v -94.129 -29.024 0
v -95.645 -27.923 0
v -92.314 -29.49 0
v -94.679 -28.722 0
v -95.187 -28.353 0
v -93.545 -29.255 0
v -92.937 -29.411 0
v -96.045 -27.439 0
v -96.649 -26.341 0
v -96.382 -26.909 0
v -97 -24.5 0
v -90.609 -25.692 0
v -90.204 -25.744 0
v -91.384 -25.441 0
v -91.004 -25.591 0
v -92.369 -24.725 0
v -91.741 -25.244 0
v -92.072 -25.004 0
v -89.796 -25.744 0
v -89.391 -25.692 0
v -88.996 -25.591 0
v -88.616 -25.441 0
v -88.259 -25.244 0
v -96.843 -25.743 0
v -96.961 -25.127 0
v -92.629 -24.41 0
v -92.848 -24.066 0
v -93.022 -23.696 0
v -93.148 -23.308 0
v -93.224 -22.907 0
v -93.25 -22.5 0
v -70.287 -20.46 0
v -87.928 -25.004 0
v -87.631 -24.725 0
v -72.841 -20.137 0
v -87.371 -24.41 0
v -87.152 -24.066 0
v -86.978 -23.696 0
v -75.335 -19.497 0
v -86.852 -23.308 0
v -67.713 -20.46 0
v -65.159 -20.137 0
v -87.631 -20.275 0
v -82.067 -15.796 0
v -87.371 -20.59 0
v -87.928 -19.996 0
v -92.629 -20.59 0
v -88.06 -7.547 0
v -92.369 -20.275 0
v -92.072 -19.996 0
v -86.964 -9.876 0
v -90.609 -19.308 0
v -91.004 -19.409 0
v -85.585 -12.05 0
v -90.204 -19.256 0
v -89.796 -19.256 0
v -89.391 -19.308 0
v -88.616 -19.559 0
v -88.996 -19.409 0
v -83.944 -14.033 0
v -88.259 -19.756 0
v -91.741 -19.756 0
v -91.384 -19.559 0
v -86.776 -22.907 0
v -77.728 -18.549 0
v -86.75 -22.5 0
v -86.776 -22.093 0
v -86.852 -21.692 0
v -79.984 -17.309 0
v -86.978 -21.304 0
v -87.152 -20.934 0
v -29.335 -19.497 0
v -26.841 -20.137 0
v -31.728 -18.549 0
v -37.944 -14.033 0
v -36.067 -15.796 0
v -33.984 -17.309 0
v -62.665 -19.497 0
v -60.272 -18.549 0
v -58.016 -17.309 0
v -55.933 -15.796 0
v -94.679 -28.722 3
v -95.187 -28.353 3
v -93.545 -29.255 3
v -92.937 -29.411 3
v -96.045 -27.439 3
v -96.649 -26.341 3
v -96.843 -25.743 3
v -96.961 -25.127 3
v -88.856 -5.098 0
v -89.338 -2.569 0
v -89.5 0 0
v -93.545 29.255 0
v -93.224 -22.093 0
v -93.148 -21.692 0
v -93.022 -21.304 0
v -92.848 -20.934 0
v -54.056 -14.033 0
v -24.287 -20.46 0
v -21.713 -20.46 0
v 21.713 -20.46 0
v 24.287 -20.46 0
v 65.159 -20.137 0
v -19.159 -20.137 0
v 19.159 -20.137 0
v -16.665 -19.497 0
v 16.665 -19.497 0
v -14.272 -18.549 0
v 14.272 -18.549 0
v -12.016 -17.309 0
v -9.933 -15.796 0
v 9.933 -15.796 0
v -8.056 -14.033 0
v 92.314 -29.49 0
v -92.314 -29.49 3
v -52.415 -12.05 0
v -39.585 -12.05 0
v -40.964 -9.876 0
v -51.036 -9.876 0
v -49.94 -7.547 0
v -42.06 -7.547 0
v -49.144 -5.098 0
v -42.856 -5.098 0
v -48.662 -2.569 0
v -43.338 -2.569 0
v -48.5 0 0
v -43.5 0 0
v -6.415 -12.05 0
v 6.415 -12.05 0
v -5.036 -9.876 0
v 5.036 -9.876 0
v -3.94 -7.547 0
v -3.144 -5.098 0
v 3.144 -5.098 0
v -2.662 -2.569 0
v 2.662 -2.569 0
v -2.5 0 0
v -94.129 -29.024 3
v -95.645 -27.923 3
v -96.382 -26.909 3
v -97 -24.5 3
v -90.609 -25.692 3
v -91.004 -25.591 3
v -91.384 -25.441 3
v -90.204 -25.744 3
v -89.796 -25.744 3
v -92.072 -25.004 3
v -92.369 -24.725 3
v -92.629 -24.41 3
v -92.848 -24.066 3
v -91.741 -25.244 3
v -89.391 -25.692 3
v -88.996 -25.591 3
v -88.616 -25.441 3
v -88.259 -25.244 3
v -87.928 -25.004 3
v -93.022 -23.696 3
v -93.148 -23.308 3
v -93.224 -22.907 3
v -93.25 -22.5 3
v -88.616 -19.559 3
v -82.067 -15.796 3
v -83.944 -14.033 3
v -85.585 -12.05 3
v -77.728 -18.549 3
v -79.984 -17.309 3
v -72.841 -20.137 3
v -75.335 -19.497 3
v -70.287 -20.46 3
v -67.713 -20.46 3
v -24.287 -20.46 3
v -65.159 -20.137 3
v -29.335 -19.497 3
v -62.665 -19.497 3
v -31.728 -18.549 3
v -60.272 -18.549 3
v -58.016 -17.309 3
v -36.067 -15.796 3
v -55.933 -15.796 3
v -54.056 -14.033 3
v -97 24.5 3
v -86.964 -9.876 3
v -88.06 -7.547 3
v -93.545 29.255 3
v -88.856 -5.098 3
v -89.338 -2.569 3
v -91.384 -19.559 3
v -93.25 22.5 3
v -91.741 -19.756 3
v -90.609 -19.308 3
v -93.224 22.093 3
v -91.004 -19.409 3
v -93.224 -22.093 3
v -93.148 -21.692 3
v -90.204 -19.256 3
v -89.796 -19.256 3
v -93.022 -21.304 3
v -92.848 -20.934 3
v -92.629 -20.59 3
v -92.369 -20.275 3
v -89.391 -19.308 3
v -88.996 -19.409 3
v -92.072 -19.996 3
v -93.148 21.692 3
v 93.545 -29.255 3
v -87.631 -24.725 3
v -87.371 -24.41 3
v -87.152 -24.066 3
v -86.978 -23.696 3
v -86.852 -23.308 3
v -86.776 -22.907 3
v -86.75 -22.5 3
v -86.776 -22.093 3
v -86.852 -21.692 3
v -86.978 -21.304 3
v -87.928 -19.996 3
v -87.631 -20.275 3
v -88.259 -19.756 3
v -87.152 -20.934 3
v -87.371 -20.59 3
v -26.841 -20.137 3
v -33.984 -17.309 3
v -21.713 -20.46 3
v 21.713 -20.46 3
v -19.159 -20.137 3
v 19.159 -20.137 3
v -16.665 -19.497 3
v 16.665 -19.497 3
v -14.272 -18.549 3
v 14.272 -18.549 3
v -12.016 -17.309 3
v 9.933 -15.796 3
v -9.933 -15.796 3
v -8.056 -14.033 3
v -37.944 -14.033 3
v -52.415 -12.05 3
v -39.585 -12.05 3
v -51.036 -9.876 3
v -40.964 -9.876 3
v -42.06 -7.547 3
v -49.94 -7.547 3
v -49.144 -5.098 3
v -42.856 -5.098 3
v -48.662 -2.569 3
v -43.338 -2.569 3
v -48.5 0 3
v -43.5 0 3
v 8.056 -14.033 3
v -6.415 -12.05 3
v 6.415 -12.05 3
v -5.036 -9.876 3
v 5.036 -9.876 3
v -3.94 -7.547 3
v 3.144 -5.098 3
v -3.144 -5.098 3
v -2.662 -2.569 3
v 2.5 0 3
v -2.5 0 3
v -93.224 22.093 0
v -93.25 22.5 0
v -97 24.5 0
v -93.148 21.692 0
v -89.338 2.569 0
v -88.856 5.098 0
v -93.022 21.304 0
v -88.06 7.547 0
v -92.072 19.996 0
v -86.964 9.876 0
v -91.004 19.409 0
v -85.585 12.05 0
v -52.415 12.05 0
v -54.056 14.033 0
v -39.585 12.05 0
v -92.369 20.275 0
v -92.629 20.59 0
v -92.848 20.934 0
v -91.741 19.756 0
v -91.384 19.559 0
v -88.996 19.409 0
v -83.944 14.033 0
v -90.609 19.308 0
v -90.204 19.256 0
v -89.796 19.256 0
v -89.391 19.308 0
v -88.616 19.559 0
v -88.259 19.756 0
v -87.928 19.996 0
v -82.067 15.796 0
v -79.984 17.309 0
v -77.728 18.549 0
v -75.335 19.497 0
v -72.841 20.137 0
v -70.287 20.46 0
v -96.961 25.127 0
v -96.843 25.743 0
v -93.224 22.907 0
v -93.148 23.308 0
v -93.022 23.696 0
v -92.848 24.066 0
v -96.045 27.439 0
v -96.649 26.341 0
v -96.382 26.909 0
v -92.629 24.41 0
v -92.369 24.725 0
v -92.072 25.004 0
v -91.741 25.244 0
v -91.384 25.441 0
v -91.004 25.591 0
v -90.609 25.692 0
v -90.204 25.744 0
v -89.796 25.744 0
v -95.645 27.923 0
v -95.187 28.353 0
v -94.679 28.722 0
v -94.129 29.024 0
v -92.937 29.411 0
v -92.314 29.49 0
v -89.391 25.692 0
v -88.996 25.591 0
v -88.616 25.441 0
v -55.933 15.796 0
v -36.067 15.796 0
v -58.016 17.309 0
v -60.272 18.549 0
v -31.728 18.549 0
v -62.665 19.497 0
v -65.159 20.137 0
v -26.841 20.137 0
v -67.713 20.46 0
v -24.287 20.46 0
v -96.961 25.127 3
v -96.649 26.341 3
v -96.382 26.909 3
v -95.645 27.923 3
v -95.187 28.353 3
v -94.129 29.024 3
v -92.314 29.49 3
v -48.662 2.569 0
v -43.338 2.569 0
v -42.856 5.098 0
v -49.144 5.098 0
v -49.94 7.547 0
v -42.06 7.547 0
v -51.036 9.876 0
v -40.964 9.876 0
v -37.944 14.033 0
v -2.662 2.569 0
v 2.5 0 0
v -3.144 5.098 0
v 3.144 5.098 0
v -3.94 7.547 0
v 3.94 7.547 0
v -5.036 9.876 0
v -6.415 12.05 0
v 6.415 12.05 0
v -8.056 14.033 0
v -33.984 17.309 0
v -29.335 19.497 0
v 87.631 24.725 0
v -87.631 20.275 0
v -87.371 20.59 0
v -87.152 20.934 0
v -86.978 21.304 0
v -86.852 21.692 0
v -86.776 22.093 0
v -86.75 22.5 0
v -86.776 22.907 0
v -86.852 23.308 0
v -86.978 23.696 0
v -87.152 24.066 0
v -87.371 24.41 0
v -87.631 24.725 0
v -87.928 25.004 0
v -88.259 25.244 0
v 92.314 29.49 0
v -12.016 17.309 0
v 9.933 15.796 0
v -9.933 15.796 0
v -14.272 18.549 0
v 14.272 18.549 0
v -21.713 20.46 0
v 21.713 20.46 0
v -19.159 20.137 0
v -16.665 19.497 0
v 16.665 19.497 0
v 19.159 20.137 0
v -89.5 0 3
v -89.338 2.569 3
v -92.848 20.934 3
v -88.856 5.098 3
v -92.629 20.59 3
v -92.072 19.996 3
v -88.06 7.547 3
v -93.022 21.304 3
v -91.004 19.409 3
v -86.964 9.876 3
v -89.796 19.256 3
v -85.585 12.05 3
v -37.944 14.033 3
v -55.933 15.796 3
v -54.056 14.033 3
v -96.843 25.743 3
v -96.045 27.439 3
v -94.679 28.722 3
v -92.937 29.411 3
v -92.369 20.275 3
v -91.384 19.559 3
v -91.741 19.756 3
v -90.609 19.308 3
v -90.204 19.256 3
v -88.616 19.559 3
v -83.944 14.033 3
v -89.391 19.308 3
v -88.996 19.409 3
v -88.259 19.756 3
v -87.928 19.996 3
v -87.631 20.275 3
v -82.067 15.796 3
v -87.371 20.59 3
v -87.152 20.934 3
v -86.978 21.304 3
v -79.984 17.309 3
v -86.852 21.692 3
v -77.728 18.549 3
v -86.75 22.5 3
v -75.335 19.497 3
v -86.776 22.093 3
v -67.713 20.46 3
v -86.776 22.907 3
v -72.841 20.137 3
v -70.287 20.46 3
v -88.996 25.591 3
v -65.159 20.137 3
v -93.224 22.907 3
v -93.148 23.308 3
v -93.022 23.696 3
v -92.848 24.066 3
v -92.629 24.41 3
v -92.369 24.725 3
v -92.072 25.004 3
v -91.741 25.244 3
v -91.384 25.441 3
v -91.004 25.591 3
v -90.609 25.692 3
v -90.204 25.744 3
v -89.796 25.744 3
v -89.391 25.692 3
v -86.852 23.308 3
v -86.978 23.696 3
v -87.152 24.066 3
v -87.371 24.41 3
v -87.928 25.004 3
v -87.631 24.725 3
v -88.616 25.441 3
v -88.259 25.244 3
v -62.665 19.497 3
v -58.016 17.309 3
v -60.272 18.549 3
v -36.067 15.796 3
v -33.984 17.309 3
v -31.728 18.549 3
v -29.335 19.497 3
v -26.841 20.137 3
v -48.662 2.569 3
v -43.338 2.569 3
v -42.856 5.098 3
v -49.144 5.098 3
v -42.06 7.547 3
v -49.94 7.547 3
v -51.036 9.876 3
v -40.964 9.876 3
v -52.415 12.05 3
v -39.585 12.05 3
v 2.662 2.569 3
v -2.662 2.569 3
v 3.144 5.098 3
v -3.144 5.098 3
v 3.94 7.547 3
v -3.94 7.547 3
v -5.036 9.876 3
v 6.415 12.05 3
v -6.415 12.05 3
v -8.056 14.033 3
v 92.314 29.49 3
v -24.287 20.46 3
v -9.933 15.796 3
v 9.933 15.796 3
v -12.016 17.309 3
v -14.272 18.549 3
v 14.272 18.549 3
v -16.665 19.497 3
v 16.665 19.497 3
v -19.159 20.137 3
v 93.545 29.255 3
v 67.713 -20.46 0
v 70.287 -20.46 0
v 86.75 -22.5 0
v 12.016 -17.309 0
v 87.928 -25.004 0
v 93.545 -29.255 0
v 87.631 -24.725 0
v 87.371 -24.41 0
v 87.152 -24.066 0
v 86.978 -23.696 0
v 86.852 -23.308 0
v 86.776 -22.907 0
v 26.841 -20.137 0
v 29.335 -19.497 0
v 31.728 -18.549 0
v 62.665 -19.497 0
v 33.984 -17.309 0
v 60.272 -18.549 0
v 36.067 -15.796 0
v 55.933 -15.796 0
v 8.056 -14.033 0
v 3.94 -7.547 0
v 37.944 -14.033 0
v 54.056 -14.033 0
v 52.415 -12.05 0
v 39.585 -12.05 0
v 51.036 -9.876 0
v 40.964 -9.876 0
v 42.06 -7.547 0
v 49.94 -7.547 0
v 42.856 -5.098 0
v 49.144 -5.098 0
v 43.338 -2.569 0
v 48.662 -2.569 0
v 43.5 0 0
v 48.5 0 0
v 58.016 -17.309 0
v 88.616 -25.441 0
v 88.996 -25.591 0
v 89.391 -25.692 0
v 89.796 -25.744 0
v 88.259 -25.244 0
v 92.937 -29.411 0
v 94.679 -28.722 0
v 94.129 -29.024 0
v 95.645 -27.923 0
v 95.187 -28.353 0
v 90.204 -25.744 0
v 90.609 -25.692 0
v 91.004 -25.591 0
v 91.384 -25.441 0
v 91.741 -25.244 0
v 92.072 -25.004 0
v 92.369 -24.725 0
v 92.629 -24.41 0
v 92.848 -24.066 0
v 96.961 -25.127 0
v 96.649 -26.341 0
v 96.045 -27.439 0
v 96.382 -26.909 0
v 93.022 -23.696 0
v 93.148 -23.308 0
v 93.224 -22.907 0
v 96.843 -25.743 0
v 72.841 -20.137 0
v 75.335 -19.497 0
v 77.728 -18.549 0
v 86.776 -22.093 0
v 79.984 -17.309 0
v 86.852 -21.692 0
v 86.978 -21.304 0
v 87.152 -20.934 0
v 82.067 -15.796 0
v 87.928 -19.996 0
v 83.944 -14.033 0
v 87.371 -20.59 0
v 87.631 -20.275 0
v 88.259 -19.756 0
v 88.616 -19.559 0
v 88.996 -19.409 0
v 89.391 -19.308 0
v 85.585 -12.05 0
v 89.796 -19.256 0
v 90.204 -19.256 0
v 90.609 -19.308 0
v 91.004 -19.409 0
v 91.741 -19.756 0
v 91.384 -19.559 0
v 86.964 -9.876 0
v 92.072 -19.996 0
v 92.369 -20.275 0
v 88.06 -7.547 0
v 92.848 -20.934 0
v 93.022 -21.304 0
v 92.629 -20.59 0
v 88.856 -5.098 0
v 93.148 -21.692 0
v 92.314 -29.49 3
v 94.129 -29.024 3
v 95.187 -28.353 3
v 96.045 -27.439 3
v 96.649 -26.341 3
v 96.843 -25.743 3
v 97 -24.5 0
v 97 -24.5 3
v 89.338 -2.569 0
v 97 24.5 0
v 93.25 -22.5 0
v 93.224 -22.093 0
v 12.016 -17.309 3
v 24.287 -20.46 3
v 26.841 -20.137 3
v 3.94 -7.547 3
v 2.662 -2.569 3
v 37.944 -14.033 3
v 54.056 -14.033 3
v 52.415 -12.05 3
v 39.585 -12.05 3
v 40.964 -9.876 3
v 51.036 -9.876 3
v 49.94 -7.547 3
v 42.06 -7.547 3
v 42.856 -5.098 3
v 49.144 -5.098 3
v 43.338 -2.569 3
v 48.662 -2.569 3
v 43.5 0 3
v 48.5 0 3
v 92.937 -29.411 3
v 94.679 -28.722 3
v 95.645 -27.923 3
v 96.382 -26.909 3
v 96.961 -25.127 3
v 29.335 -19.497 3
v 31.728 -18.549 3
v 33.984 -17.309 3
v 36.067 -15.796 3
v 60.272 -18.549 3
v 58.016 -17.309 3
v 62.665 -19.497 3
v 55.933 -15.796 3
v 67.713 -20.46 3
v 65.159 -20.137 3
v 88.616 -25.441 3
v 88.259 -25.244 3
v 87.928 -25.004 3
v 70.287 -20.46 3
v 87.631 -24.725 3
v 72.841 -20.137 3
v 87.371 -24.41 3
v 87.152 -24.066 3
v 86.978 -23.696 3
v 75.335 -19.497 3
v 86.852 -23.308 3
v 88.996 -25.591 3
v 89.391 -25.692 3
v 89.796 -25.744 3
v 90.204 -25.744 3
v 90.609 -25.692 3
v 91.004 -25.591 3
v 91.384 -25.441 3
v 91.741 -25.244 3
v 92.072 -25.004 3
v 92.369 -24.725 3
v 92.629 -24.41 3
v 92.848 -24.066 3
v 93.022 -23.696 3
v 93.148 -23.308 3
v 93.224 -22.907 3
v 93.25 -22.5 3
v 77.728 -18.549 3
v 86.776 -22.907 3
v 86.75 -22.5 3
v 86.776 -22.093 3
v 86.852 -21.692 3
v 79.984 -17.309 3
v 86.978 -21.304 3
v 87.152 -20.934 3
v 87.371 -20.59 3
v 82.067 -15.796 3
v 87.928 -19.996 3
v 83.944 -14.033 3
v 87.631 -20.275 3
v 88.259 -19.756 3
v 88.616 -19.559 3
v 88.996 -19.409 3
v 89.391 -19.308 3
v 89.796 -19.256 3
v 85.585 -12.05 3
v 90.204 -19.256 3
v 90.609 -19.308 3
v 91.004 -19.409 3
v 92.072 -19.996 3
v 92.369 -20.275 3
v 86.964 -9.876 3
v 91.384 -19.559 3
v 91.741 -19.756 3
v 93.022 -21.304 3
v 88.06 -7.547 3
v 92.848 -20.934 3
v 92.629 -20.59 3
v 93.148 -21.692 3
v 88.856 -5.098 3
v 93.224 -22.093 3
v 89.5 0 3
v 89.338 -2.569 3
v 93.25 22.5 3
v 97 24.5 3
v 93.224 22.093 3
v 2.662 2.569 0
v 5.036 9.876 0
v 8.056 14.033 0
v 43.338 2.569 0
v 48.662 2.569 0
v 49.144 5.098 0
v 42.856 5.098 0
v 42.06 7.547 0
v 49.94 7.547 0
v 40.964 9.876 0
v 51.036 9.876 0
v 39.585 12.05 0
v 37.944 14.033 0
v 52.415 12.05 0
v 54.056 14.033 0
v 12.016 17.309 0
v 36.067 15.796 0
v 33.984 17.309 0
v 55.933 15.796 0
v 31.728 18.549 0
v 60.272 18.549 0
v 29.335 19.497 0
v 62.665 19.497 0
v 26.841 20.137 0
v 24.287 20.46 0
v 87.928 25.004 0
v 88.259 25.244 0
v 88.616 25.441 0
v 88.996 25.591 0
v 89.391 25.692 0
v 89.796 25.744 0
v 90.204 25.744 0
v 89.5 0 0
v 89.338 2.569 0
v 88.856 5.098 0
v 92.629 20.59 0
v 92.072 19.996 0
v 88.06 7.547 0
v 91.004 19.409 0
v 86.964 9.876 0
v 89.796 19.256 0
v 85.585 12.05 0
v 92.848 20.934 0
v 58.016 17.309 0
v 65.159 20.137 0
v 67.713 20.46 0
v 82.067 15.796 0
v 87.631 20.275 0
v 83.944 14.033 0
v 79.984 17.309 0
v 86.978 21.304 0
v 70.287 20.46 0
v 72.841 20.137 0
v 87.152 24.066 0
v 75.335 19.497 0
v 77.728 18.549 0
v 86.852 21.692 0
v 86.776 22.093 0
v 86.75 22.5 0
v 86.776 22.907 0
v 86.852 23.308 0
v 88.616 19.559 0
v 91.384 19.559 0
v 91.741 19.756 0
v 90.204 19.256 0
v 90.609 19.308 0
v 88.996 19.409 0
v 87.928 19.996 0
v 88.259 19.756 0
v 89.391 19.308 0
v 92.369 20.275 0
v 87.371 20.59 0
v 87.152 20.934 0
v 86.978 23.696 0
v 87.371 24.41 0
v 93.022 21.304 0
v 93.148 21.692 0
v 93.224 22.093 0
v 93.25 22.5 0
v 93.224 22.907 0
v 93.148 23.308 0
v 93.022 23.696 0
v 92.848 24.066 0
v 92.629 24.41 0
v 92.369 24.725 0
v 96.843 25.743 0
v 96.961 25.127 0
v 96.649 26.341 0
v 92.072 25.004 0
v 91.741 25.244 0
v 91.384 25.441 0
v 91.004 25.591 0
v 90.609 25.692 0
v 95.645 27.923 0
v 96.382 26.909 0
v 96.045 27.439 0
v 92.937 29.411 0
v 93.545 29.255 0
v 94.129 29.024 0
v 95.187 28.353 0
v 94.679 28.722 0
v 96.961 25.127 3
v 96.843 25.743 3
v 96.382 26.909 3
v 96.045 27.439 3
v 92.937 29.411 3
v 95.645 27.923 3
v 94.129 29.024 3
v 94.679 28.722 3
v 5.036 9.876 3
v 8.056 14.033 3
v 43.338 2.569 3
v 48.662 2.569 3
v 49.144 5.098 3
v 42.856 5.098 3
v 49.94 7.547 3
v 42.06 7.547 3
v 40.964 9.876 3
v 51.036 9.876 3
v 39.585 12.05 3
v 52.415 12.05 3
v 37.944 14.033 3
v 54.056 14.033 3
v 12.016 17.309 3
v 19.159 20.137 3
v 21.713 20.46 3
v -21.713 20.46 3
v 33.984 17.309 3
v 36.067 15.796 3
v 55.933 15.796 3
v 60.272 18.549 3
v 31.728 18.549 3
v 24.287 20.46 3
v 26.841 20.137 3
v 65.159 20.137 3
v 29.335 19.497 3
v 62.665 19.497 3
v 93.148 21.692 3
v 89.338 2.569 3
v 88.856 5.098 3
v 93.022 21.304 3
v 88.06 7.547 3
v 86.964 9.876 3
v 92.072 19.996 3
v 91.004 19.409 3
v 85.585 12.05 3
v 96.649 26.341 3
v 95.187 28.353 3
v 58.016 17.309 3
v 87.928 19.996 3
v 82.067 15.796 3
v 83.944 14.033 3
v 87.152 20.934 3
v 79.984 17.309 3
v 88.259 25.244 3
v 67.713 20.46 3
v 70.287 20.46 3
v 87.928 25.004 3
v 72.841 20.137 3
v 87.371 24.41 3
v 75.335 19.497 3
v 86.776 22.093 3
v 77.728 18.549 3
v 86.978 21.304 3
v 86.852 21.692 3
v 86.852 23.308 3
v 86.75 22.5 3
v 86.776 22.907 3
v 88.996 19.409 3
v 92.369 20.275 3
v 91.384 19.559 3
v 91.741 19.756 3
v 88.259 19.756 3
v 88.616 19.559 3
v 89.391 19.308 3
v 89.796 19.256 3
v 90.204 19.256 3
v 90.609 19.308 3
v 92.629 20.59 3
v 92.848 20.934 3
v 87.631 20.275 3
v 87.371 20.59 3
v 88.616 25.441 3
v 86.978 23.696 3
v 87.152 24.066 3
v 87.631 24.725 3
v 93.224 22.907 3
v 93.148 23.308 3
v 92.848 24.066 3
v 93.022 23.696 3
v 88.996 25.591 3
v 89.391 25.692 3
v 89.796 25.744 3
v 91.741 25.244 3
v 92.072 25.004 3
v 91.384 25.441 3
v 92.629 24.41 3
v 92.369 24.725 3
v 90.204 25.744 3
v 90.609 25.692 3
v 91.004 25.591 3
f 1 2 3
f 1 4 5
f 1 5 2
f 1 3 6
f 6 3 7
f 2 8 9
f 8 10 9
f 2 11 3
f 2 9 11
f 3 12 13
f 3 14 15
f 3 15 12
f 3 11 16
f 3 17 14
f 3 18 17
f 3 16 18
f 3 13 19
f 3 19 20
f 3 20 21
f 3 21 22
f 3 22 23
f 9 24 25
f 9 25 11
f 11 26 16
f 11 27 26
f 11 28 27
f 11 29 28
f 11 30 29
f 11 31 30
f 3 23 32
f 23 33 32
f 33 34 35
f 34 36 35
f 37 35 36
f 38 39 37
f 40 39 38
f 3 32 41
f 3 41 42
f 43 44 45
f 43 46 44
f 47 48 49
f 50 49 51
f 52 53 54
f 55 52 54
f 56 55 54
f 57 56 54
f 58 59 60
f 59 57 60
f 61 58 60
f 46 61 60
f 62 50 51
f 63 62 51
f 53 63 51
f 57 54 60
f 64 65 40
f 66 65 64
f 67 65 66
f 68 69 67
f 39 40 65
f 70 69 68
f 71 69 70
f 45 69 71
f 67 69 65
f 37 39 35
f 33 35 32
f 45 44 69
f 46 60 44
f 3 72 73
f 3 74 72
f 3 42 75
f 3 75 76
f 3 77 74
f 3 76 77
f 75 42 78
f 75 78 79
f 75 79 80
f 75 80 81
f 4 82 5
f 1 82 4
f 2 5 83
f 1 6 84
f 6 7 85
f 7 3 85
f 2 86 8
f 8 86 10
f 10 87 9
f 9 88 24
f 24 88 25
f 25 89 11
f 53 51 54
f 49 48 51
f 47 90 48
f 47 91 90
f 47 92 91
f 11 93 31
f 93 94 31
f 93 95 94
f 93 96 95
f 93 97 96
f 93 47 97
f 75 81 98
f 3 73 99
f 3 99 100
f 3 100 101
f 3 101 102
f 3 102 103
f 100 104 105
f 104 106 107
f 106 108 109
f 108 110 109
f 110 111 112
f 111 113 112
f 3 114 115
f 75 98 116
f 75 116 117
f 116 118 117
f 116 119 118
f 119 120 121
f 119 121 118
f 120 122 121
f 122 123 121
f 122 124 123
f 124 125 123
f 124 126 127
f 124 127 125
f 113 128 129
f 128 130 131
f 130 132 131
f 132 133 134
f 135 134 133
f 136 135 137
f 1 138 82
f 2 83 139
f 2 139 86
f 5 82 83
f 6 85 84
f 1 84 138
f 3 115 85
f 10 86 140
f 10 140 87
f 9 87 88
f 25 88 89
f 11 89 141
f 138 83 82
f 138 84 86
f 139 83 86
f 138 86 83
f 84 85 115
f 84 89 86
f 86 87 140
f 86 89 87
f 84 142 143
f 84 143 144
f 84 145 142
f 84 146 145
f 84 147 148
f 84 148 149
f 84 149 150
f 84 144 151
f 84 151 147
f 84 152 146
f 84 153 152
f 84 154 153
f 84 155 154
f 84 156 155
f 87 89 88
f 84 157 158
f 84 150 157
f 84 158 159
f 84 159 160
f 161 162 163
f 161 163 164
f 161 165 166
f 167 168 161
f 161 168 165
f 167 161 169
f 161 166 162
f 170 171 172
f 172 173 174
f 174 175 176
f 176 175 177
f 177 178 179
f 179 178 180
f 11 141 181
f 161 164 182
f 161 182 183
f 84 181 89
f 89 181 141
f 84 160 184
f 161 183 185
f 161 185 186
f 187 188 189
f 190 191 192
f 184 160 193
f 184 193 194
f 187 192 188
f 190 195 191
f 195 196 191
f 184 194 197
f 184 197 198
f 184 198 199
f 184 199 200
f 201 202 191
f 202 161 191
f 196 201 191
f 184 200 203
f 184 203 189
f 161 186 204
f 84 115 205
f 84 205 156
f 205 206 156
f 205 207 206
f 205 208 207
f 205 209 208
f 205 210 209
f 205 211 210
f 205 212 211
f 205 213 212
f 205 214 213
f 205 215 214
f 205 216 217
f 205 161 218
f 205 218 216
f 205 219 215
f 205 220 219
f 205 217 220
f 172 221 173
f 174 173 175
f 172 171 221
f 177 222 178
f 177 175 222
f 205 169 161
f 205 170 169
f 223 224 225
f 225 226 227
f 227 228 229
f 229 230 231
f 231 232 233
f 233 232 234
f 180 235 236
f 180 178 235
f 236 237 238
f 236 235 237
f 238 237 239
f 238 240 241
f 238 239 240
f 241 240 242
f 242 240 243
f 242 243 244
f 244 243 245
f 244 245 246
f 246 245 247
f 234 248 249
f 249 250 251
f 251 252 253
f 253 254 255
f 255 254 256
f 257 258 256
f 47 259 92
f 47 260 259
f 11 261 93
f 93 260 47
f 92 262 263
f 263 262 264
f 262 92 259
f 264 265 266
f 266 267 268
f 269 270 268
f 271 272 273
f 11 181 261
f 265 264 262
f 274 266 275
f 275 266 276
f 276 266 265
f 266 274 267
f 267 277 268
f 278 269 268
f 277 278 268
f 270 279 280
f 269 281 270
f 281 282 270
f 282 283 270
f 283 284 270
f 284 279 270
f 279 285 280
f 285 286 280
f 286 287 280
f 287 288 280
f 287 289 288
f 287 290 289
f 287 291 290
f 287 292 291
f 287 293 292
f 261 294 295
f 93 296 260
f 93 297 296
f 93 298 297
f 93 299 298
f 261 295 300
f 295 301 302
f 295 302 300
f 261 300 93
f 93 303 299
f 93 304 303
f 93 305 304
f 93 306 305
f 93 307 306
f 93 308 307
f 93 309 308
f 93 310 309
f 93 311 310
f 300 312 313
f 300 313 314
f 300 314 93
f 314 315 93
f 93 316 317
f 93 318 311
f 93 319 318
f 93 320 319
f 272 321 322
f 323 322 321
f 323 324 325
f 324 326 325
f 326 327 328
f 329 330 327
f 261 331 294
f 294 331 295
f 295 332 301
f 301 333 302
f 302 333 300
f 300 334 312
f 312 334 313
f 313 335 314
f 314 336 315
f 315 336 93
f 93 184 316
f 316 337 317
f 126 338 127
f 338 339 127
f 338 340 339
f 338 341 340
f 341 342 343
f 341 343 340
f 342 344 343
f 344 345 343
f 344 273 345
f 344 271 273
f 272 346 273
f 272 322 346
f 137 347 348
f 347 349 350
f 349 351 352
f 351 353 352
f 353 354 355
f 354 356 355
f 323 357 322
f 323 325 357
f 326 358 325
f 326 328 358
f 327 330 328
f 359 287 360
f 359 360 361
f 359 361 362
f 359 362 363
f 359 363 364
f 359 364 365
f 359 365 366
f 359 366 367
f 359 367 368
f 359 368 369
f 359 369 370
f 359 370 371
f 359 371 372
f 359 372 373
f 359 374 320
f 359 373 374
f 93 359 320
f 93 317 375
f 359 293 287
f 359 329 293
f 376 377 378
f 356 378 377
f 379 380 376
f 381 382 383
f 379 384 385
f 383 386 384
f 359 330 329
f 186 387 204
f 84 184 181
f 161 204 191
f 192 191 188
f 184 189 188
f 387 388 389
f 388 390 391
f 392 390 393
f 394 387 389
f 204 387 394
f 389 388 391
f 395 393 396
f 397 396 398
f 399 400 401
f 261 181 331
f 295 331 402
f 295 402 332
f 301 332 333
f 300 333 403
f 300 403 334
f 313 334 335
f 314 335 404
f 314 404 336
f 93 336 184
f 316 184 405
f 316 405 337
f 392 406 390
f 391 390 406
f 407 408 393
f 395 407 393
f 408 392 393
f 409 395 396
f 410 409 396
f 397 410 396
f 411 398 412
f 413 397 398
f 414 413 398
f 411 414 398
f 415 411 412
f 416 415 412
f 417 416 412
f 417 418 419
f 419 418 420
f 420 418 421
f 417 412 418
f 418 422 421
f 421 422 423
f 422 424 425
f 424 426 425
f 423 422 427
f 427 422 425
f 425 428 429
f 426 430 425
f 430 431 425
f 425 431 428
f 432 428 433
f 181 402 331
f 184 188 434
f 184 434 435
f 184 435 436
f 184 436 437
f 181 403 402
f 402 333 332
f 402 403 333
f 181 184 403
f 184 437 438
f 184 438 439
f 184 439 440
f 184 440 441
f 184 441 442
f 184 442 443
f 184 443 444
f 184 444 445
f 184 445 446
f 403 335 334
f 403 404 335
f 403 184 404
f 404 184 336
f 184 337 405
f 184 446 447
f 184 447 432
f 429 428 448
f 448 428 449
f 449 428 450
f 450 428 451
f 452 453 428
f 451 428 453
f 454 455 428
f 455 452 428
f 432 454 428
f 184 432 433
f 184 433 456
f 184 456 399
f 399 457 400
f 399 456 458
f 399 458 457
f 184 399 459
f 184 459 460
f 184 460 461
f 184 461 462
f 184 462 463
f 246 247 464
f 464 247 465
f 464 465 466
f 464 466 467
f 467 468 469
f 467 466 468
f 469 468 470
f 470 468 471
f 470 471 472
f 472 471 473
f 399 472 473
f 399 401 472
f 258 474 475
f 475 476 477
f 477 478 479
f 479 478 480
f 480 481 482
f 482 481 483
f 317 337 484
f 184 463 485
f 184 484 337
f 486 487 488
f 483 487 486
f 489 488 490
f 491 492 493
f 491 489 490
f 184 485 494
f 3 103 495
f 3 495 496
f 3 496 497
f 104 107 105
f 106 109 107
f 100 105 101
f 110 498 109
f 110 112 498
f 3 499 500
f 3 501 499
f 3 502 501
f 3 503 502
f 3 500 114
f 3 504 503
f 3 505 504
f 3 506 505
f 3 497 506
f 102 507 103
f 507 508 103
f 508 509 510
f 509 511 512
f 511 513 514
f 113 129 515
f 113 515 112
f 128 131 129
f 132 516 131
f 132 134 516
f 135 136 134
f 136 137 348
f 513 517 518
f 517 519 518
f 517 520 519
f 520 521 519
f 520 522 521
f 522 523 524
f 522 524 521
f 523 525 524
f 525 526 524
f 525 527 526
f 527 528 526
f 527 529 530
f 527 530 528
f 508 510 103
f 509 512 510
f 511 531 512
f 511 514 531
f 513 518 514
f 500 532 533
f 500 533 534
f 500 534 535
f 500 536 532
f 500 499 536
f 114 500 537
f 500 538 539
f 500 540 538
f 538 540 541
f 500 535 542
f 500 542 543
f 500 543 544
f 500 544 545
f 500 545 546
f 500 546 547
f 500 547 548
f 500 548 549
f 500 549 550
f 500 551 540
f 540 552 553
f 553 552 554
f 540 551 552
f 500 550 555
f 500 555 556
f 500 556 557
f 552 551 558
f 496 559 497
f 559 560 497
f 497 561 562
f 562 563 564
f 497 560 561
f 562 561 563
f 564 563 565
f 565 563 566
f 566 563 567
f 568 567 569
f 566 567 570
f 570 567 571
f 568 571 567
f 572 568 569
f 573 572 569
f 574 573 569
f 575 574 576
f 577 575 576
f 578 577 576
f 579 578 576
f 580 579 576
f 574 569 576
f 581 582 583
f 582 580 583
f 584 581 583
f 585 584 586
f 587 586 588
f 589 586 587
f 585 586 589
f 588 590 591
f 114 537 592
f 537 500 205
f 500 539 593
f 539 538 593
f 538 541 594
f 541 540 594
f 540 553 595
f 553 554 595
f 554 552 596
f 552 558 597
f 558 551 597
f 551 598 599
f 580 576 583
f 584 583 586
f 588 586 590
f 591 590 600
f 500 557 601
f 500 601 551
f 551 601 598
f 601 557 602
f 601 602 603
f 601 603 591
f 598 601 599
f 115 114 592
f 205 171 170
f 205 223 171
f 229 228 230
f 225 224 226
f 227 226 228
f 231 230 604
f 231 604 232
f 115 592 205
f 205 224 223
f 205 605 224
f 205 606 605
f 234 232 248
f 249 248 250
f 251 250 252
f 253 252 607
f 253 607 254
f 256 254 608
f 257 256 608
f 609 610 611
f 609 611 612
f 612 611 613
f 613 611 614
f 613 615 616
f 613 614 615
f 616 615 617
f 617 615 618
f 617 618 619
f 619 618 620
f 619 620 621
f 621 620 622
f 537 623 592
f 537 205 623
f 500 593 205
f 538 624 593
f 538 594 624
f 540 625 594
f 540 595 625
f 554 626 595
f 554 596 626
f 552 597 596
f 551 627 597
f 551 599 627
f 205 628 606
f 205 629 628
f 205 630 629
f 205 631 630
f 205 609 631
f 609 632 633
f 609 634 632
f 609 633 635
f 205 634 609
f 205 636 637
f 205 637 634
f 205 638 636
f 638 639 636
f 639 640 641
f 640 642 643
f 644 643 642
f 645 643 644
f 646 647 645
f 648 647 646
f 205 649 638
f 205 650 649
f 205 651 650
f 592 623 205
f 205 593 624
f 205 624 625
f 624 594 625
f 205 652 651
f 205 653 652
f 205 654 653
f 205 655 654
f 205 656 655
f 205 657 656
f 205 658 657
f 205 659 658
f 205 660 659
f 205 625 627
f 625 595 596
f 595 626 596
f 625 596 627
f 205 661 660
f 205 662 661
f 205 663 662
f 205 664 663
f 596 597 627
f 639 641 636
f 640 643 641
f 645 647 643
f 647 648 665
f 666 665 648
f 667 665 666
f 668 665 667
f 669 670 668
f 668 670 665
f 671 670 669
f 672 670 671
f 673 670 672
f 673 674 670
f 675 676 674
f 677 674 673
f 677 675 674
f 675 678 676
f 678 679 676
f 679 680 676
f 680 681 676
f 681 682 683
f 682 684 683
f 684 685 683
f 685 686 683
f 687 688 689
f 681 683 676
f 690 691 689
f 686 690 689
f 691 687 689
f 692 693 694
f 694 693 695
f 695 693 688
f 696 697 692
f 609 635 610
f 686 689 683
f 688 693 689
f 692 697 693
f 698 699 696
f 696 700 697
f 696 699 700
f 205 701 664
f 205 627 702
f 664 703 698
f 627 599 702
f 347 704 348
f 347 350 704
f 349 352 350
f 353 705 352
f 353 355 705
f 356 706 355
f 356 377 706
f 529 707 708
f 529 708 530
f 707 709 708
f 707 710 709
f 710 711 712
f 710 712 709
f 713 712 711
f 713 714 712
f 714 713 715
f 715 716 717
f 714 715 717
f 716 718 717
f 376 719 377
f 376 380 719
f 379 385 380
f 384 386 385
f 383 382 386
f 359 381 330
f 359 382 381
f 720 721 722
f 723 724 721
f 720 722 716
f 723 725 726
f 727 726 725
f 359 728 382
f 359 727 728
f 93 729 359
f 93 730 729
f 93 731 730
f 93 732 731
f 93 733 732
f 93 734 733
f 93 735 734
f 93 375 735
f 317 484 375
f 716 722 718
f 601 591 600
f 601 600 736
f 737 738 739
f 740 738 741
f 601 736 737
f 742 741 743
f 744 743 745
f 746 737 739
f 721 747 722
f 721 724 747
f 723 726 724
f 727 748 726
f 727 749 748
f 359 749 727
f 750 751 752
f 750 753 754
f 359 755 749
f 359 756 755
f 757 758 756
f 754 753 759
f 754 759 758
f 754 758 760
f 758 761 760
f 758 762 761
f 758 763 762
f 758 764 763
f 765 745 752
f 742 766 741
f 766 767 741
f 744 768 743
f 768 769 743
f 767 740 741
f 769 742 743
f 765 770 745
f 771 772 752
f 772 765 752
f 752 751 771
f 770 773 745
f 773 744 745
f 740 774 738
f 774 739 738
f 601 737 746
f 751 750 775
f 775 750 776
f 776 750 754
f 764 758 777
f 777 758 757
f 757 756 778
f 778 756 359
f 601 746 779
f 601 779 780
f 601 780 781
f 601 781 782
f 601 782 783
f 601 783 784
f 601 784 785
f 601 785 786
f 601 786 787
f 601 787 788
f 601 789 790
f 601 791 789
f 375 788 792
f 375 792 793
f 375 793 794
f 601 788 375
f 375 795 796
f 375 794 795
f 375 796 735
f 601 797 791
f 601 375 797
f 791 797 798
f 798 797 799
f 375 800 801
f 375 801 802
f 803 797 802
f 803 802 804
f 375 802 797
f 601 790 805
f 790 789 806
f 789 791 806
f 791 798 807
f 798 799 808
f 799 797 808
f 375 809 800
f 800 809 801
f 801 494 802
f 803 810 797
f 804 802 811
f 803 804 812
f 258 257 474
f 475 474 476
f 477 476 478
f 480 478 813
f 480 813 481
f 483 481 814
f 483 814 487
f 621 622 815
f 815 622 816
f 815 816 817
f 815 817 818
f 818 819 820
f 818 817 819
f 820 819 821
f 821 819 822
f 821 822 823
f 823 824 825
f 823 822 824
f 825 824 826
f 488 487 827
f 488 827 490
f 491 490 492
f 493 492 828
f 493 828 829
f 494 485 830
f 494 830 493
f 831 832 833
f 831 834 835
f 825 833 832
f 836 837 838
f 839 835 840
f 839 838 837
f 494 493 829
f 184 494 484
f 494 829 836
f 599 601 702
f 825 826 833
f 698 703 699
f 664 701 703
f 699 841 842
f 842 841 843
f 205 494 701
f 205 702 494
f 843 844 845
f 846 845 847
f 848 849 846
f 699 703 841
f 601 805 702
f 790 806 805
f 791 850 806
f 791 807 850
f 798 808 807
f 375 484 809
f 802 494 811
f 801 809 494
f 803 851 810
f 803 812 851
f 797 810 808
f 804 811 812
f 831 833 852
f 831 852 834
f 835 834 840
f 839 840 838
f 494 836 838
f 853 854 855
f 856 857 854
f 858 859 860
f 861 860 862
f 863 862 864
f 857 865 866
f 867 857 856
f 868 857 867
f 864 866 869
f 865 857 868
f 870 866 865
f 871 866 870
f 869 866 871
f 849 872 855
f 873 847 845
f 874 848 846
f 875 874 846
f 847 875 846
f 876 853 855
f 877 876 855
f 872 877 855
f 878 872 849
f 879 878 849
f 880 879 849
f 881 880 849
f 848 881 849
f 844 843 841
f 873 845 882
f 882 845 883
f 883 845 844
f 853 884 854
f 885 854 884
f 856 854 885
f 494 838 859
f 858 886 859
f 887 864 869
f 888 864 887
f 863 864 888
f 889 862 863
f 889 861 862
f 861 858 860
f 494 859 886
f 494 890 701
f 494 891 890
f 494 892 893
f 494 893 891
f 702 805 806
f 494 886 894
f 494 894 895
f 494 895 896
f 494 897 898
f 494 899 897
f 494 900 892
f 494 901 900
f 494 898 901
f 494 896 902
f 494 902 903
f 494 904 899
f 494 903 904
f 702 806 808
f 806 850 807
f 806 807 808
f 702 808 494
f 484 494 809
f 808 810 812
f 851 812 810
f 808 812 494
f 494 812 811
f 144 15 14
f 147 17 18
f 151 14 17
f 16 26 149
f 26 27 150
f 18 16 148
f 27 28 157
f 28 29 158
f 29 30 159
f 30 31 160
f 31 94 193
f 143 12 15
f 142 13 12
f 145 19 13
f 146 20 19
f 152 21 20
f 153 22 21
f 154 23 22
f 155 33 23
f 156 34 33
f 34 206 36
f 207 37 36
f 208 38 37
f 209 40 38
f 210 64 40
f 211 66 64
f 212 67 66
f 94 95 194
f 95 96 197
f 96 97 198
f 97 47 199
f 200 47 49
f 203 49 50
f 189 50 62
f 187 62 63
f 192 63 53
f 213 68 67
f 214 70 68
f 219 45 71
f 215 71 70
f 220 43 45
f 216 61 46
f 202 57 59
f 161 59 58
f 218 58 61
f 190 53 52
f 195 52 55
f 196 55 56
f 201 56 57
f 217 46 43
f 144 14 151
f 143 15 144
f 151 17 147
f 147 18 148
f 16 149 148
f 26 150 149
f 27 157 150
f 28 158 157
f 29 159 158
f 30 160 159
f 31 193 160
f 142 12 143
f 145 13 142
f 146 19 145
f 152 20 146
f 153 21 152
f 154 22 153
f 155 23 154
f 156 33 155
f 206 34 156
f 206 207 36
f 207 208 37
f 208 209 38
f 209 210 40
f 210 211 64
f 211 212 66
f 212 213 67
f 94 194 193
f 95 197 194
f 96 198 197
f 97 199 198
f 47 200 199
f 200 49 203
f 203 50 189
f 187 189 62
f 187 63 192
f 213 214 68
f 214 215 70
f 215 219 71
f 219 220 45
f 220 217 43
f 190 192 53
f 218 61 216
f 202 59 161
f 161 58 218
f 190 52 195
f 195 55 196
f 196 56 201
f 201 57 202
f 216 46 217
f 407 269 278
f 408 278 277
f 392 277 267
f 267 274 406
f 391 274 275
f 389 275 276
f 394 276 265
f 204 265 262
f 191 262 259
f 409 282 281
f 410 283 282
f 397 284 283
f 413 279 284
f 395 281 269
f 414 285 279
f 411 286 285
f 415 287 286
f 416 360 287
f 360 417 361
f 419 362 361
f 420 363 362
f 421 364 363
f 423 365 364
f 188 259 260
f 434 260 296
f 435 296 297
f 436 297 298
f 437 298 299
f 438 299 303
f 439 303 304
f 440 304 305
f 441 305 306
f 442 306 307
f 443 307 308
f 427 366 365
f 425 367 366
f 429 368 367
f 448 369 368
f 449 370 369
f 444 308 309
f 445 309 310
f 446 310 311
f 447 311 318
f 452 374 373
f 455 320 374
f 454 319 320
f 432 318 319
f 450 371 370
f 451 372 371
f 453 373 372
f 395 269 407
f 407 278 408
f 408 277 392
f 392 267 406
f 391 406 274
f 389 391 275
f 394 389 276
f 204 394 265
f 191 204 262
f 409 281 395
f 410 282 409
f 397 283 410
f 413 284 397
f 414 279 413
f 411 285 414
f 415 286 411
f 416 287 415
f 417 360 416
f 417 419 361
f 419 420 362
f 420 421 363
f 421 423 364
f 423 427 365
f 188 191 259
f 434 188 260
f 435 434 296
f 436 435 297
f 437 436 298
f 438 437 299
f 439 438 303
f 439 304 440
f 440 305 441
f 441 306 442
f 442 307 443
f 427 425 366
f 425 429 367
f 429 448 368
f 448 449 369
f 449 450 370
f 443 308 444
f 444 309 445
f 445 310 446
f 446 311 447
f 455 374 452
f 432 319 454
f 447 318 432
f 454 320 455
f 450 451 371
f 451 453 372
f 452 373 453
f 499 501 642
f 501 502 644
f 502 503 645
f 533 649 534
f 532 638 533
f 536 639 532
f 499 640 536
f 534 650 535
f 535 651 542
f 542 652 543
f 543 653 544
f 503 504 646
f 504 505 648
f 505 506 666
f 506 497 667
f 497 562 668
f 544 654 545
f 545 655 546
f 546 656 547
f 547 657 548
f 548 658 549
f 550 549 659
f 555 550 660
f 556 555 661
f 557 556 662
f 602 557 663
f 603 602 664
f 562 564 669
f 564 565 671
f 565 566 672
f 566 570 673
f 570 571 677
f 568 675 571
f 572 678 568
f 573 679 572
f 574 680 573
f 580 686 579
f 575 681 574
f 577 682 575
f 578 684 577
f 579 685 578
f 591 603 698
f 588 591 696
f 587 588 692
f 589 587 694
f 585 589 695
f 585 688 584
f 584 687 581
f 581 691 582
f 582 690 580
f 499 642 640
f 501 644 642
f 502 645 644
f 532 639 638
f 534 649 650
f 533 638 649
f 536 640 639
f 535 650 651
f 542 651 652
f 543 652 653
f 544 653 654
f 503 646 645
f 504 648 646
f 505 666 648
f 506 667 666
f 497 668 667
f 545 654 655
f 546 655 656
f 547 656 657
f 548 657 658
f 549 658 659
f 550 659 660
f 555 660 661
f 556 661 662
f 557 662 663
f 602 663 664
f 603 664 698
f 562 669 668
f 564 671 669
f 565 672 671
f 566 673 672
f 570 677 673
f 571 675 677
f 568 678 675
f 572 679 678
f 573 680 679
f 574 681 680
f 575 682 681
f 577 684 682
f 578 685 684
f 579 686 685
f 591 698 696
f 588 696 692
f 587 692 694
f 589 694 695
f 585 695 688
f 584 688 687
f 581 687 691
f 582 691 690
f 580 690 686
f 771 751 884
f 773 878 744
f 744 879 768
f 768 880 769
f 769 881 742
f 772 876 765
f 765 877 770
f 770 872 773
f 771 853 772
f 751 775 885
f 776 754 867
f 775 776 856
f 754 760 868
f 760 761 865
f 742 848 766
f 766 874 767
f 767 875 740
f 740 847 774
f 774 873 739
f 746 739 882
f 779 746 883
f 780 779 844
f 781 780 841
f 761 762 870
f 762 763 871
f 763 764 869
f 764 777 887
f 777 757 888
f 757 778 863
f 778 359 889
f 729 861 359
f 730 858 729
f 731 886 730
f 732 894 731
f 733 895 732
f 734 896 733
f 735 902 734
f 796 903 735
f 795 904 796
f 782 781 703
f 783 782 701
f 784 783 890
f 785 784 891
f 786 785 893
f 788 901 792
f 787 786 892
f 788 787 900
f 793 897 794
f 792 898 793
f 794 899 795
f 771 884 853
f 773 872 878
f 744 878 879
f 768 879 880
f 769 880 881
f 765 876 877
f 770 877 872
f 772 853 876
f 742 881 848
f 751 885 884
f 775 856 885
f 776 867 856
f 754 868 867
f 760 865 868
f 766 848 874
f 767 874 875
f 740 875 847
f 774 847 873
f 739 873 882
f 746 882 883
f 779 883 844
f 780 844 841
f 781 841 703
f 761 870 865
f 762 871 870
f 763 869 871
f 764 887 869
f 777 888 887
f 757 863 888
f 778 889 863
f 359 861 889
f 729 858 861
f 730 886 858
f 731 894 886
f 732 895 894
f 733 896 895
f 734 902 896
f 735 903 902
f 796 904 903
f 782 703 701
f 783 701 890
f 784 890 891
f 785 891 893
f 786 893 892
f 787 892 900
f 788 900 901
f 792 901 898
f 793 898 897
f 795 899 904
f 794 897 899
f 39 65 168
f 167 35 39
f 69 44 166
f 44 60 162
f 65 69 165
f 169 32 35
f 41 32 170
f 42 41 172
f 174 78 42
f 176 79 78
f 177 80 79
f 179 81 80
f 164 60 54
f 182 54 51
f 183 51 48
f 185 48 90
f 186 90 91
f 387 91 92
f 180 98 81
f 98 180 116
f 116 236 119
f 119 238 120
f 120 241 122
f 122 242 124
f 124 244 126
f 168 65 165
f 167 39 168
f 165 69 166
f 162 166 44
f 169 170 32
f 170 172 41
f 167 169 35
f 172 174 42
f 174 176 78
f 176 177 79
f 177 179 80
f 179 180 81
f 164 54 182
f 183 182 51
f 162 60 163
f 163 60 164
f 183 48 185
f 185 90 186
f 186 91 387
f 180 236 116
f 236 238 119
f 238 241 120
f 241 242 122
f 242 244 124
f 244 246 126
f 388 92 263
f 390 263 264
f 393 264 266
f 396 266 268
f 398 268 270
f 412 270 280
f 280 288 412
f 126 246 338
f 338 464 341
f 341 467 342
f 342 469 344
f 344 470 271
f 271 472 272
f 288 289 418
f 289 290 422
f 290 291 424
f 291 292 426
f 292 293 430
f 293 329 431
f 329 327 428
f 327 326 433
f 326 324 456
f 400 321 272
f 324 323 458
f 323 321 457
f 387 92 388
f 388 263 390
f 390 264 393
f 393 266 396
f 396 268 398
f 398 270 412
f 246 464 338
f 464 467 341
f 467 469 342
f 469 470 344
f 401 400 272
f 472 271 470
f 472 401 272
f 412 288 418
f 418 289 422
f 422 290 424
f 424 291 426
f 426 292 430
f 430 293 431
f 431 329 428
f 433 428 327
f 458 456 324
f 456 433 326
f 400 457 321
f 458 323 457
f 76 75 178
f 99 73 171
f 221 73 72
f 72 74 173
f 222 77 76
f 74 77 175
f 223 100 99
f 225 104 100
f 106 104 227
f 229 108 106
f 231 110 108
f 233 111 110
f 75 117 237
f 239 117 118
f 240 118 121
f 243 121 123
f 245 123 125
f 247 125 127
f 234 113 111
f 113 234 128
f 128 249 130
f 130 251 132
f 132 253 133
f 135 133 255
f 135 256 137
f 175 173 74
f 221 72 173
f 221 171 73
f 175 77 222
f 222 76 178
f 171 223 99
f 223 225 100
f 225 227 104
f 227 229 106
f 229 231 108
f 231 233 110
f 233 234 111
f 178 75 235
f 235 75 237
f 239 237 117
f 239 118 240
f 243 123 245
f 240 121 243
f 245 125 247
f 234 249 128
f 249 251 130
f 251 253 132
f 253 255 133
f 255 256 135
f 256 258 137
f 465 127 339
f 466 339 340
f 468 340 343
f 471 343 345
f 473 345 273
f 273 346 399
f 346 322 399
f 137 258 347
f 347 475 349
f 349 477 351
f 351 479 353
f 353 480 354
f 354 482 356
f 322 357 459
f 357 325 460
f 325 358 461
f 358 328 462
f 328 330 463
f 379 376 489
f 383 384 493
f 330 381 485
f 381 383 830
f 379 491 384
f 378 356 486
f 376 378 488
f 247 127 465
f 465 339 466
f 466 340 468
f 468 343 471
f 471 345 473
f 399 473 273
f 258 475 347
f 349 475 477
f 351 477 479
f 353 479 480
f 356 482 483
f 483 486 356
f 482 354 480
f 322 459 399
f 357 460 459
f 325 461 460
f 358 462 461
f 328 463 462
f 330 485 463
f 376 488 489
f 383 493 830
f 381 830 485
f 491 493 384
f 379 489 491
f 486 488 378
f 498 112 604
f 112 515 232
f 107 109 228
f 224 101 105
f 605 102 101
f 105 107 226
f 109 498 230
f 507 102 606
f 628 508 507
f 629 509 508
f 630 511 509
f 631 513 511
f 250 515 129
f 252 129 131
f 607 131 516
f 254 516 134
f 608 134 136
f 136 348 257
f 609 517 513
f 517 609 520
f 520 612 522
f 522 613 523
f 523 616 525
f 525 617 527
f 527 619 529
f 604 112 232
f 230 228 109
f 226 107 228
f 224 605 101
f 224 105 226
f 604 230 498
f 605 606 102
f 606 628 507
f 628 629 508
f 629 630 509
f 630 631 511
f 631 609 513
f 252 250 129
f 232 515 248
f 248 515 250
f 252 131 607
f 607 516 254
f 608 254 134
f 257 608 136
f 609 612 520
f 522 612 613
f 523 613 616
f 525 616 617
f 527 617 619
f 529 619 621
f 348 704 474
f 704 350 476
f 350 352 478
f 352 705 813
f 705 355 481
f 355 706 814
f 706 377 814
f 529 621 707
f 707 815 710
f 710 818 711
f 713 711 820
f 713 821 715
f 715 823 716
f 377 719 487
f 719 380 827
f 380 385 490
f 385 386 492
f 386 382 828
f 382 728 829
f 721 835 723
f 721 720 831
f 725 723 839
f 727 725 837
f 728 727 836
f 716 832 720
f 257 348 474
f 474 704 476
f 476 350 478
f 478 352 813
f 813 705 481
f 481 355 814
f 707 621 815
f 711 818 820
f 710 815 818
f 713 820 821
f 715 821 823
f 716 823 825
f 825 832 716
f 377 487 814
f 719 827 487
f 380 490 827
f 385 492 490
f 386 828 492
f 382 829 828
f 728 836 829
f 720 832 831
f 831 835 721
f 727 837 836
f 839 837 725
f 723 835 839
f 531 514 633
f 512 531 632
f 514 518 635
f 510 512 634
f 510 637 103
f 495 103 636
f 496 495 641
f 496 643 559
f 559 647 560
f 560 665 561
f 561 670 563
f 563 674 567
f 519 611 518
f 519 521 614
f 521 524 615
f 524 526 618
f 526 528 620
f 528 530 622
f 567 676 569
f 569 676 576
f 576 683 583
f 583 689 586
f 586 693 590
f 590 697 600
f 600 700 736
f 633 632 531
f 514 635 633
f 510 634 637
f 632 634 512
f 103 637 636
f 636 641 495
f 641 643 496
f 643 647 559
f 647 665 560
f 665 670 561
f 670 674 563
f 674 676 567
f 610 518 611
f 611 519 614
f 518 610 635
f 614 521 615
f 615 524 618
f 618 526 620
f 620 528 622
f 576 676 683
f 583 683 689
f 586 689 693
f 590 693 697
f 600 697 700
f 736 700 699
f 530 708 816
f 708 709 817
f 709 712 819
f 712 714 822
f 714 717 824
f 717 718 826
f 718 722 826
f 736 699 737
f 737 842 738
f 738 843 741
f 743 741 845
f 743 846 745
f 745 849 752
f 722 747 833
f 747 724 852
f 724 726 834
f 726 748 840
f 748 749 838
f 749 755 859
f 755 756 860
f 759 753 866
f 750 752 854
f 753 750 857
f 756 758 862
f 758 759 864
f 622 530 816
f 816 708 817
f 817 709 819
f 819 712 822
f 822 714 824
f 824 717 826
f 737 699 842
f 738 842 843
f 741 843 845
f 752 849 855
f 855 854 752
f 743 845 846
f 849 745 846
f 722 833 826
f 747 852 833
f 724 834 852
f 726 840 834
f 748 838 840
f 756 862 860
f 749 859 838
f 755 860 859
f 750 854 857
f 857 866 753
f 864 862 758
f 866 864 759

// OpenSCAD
$fn = 50;

difference() {
	union() {
		hull() {
			translate(v = [-92.0, 24.5, 0]) {
				cylinder(h = 3, r = 5);
			}
			translate(v = [92.0, 24.5, 0]) {
				cylinder(h = 3, r = 5);
			}
			translate(v = [-92.0, -24.5, 0]) {
				cylinder(h = 3, r = 5);
			}
			translate(v = [92.0, -24.5, 0]) {
				cylinder(h = 3, r = 5);
			}
		}
	}
	union() {
		translate(v = [-90.0, -22.5, -100.0]) {
			cylinder(h = 200, r = 3.25);
		}
		translate(v = [-90.0, 22.5, -100.0]) {
			cylinder(h = 200, r = 3.25);
		}
		translate(v = [90.0, -22.5, -100.0]) {
			cylinder(h = 200, r = 3.25);
		}
		translate(v = [90.0, 22.5, -100.0]) {
			cylinder(h = 200, r = 3.25);
		}
		translate(v = [-90.0, -22.5, -100.0]) {
			cylinder(h = 200, r = 1.8);
		}
		translate(v = [-90.0, 22.5, -100.0]) {
			cylinder(h = 200, r = 1.8);
		}
		translate(v = [90.0, -22.5, -100.0]) {
			cylinder(h = 200, r = 1.8);
		}
		translate(v = [90.0, 22.5, -100.0]) {
			cylinder(h = 200, r = 1.8);
		}
		translate(v = [-69.0, 0, 0.0]) {
			cylinder(h = 3, r = 20.5);
		}
		translate(v = [-23.0, 0, 0.0]) {
			cylinder(h = 3, r = 20.5);
		}
		translate(v = [23.0, 0, 0.0]) {
			cylinder(h = 3, r = 20.5);
		}
		translate(v = [69.0, 0, 0.0]) {
			cylinder(h = 3, r = 20.5);
		}
	}
}
